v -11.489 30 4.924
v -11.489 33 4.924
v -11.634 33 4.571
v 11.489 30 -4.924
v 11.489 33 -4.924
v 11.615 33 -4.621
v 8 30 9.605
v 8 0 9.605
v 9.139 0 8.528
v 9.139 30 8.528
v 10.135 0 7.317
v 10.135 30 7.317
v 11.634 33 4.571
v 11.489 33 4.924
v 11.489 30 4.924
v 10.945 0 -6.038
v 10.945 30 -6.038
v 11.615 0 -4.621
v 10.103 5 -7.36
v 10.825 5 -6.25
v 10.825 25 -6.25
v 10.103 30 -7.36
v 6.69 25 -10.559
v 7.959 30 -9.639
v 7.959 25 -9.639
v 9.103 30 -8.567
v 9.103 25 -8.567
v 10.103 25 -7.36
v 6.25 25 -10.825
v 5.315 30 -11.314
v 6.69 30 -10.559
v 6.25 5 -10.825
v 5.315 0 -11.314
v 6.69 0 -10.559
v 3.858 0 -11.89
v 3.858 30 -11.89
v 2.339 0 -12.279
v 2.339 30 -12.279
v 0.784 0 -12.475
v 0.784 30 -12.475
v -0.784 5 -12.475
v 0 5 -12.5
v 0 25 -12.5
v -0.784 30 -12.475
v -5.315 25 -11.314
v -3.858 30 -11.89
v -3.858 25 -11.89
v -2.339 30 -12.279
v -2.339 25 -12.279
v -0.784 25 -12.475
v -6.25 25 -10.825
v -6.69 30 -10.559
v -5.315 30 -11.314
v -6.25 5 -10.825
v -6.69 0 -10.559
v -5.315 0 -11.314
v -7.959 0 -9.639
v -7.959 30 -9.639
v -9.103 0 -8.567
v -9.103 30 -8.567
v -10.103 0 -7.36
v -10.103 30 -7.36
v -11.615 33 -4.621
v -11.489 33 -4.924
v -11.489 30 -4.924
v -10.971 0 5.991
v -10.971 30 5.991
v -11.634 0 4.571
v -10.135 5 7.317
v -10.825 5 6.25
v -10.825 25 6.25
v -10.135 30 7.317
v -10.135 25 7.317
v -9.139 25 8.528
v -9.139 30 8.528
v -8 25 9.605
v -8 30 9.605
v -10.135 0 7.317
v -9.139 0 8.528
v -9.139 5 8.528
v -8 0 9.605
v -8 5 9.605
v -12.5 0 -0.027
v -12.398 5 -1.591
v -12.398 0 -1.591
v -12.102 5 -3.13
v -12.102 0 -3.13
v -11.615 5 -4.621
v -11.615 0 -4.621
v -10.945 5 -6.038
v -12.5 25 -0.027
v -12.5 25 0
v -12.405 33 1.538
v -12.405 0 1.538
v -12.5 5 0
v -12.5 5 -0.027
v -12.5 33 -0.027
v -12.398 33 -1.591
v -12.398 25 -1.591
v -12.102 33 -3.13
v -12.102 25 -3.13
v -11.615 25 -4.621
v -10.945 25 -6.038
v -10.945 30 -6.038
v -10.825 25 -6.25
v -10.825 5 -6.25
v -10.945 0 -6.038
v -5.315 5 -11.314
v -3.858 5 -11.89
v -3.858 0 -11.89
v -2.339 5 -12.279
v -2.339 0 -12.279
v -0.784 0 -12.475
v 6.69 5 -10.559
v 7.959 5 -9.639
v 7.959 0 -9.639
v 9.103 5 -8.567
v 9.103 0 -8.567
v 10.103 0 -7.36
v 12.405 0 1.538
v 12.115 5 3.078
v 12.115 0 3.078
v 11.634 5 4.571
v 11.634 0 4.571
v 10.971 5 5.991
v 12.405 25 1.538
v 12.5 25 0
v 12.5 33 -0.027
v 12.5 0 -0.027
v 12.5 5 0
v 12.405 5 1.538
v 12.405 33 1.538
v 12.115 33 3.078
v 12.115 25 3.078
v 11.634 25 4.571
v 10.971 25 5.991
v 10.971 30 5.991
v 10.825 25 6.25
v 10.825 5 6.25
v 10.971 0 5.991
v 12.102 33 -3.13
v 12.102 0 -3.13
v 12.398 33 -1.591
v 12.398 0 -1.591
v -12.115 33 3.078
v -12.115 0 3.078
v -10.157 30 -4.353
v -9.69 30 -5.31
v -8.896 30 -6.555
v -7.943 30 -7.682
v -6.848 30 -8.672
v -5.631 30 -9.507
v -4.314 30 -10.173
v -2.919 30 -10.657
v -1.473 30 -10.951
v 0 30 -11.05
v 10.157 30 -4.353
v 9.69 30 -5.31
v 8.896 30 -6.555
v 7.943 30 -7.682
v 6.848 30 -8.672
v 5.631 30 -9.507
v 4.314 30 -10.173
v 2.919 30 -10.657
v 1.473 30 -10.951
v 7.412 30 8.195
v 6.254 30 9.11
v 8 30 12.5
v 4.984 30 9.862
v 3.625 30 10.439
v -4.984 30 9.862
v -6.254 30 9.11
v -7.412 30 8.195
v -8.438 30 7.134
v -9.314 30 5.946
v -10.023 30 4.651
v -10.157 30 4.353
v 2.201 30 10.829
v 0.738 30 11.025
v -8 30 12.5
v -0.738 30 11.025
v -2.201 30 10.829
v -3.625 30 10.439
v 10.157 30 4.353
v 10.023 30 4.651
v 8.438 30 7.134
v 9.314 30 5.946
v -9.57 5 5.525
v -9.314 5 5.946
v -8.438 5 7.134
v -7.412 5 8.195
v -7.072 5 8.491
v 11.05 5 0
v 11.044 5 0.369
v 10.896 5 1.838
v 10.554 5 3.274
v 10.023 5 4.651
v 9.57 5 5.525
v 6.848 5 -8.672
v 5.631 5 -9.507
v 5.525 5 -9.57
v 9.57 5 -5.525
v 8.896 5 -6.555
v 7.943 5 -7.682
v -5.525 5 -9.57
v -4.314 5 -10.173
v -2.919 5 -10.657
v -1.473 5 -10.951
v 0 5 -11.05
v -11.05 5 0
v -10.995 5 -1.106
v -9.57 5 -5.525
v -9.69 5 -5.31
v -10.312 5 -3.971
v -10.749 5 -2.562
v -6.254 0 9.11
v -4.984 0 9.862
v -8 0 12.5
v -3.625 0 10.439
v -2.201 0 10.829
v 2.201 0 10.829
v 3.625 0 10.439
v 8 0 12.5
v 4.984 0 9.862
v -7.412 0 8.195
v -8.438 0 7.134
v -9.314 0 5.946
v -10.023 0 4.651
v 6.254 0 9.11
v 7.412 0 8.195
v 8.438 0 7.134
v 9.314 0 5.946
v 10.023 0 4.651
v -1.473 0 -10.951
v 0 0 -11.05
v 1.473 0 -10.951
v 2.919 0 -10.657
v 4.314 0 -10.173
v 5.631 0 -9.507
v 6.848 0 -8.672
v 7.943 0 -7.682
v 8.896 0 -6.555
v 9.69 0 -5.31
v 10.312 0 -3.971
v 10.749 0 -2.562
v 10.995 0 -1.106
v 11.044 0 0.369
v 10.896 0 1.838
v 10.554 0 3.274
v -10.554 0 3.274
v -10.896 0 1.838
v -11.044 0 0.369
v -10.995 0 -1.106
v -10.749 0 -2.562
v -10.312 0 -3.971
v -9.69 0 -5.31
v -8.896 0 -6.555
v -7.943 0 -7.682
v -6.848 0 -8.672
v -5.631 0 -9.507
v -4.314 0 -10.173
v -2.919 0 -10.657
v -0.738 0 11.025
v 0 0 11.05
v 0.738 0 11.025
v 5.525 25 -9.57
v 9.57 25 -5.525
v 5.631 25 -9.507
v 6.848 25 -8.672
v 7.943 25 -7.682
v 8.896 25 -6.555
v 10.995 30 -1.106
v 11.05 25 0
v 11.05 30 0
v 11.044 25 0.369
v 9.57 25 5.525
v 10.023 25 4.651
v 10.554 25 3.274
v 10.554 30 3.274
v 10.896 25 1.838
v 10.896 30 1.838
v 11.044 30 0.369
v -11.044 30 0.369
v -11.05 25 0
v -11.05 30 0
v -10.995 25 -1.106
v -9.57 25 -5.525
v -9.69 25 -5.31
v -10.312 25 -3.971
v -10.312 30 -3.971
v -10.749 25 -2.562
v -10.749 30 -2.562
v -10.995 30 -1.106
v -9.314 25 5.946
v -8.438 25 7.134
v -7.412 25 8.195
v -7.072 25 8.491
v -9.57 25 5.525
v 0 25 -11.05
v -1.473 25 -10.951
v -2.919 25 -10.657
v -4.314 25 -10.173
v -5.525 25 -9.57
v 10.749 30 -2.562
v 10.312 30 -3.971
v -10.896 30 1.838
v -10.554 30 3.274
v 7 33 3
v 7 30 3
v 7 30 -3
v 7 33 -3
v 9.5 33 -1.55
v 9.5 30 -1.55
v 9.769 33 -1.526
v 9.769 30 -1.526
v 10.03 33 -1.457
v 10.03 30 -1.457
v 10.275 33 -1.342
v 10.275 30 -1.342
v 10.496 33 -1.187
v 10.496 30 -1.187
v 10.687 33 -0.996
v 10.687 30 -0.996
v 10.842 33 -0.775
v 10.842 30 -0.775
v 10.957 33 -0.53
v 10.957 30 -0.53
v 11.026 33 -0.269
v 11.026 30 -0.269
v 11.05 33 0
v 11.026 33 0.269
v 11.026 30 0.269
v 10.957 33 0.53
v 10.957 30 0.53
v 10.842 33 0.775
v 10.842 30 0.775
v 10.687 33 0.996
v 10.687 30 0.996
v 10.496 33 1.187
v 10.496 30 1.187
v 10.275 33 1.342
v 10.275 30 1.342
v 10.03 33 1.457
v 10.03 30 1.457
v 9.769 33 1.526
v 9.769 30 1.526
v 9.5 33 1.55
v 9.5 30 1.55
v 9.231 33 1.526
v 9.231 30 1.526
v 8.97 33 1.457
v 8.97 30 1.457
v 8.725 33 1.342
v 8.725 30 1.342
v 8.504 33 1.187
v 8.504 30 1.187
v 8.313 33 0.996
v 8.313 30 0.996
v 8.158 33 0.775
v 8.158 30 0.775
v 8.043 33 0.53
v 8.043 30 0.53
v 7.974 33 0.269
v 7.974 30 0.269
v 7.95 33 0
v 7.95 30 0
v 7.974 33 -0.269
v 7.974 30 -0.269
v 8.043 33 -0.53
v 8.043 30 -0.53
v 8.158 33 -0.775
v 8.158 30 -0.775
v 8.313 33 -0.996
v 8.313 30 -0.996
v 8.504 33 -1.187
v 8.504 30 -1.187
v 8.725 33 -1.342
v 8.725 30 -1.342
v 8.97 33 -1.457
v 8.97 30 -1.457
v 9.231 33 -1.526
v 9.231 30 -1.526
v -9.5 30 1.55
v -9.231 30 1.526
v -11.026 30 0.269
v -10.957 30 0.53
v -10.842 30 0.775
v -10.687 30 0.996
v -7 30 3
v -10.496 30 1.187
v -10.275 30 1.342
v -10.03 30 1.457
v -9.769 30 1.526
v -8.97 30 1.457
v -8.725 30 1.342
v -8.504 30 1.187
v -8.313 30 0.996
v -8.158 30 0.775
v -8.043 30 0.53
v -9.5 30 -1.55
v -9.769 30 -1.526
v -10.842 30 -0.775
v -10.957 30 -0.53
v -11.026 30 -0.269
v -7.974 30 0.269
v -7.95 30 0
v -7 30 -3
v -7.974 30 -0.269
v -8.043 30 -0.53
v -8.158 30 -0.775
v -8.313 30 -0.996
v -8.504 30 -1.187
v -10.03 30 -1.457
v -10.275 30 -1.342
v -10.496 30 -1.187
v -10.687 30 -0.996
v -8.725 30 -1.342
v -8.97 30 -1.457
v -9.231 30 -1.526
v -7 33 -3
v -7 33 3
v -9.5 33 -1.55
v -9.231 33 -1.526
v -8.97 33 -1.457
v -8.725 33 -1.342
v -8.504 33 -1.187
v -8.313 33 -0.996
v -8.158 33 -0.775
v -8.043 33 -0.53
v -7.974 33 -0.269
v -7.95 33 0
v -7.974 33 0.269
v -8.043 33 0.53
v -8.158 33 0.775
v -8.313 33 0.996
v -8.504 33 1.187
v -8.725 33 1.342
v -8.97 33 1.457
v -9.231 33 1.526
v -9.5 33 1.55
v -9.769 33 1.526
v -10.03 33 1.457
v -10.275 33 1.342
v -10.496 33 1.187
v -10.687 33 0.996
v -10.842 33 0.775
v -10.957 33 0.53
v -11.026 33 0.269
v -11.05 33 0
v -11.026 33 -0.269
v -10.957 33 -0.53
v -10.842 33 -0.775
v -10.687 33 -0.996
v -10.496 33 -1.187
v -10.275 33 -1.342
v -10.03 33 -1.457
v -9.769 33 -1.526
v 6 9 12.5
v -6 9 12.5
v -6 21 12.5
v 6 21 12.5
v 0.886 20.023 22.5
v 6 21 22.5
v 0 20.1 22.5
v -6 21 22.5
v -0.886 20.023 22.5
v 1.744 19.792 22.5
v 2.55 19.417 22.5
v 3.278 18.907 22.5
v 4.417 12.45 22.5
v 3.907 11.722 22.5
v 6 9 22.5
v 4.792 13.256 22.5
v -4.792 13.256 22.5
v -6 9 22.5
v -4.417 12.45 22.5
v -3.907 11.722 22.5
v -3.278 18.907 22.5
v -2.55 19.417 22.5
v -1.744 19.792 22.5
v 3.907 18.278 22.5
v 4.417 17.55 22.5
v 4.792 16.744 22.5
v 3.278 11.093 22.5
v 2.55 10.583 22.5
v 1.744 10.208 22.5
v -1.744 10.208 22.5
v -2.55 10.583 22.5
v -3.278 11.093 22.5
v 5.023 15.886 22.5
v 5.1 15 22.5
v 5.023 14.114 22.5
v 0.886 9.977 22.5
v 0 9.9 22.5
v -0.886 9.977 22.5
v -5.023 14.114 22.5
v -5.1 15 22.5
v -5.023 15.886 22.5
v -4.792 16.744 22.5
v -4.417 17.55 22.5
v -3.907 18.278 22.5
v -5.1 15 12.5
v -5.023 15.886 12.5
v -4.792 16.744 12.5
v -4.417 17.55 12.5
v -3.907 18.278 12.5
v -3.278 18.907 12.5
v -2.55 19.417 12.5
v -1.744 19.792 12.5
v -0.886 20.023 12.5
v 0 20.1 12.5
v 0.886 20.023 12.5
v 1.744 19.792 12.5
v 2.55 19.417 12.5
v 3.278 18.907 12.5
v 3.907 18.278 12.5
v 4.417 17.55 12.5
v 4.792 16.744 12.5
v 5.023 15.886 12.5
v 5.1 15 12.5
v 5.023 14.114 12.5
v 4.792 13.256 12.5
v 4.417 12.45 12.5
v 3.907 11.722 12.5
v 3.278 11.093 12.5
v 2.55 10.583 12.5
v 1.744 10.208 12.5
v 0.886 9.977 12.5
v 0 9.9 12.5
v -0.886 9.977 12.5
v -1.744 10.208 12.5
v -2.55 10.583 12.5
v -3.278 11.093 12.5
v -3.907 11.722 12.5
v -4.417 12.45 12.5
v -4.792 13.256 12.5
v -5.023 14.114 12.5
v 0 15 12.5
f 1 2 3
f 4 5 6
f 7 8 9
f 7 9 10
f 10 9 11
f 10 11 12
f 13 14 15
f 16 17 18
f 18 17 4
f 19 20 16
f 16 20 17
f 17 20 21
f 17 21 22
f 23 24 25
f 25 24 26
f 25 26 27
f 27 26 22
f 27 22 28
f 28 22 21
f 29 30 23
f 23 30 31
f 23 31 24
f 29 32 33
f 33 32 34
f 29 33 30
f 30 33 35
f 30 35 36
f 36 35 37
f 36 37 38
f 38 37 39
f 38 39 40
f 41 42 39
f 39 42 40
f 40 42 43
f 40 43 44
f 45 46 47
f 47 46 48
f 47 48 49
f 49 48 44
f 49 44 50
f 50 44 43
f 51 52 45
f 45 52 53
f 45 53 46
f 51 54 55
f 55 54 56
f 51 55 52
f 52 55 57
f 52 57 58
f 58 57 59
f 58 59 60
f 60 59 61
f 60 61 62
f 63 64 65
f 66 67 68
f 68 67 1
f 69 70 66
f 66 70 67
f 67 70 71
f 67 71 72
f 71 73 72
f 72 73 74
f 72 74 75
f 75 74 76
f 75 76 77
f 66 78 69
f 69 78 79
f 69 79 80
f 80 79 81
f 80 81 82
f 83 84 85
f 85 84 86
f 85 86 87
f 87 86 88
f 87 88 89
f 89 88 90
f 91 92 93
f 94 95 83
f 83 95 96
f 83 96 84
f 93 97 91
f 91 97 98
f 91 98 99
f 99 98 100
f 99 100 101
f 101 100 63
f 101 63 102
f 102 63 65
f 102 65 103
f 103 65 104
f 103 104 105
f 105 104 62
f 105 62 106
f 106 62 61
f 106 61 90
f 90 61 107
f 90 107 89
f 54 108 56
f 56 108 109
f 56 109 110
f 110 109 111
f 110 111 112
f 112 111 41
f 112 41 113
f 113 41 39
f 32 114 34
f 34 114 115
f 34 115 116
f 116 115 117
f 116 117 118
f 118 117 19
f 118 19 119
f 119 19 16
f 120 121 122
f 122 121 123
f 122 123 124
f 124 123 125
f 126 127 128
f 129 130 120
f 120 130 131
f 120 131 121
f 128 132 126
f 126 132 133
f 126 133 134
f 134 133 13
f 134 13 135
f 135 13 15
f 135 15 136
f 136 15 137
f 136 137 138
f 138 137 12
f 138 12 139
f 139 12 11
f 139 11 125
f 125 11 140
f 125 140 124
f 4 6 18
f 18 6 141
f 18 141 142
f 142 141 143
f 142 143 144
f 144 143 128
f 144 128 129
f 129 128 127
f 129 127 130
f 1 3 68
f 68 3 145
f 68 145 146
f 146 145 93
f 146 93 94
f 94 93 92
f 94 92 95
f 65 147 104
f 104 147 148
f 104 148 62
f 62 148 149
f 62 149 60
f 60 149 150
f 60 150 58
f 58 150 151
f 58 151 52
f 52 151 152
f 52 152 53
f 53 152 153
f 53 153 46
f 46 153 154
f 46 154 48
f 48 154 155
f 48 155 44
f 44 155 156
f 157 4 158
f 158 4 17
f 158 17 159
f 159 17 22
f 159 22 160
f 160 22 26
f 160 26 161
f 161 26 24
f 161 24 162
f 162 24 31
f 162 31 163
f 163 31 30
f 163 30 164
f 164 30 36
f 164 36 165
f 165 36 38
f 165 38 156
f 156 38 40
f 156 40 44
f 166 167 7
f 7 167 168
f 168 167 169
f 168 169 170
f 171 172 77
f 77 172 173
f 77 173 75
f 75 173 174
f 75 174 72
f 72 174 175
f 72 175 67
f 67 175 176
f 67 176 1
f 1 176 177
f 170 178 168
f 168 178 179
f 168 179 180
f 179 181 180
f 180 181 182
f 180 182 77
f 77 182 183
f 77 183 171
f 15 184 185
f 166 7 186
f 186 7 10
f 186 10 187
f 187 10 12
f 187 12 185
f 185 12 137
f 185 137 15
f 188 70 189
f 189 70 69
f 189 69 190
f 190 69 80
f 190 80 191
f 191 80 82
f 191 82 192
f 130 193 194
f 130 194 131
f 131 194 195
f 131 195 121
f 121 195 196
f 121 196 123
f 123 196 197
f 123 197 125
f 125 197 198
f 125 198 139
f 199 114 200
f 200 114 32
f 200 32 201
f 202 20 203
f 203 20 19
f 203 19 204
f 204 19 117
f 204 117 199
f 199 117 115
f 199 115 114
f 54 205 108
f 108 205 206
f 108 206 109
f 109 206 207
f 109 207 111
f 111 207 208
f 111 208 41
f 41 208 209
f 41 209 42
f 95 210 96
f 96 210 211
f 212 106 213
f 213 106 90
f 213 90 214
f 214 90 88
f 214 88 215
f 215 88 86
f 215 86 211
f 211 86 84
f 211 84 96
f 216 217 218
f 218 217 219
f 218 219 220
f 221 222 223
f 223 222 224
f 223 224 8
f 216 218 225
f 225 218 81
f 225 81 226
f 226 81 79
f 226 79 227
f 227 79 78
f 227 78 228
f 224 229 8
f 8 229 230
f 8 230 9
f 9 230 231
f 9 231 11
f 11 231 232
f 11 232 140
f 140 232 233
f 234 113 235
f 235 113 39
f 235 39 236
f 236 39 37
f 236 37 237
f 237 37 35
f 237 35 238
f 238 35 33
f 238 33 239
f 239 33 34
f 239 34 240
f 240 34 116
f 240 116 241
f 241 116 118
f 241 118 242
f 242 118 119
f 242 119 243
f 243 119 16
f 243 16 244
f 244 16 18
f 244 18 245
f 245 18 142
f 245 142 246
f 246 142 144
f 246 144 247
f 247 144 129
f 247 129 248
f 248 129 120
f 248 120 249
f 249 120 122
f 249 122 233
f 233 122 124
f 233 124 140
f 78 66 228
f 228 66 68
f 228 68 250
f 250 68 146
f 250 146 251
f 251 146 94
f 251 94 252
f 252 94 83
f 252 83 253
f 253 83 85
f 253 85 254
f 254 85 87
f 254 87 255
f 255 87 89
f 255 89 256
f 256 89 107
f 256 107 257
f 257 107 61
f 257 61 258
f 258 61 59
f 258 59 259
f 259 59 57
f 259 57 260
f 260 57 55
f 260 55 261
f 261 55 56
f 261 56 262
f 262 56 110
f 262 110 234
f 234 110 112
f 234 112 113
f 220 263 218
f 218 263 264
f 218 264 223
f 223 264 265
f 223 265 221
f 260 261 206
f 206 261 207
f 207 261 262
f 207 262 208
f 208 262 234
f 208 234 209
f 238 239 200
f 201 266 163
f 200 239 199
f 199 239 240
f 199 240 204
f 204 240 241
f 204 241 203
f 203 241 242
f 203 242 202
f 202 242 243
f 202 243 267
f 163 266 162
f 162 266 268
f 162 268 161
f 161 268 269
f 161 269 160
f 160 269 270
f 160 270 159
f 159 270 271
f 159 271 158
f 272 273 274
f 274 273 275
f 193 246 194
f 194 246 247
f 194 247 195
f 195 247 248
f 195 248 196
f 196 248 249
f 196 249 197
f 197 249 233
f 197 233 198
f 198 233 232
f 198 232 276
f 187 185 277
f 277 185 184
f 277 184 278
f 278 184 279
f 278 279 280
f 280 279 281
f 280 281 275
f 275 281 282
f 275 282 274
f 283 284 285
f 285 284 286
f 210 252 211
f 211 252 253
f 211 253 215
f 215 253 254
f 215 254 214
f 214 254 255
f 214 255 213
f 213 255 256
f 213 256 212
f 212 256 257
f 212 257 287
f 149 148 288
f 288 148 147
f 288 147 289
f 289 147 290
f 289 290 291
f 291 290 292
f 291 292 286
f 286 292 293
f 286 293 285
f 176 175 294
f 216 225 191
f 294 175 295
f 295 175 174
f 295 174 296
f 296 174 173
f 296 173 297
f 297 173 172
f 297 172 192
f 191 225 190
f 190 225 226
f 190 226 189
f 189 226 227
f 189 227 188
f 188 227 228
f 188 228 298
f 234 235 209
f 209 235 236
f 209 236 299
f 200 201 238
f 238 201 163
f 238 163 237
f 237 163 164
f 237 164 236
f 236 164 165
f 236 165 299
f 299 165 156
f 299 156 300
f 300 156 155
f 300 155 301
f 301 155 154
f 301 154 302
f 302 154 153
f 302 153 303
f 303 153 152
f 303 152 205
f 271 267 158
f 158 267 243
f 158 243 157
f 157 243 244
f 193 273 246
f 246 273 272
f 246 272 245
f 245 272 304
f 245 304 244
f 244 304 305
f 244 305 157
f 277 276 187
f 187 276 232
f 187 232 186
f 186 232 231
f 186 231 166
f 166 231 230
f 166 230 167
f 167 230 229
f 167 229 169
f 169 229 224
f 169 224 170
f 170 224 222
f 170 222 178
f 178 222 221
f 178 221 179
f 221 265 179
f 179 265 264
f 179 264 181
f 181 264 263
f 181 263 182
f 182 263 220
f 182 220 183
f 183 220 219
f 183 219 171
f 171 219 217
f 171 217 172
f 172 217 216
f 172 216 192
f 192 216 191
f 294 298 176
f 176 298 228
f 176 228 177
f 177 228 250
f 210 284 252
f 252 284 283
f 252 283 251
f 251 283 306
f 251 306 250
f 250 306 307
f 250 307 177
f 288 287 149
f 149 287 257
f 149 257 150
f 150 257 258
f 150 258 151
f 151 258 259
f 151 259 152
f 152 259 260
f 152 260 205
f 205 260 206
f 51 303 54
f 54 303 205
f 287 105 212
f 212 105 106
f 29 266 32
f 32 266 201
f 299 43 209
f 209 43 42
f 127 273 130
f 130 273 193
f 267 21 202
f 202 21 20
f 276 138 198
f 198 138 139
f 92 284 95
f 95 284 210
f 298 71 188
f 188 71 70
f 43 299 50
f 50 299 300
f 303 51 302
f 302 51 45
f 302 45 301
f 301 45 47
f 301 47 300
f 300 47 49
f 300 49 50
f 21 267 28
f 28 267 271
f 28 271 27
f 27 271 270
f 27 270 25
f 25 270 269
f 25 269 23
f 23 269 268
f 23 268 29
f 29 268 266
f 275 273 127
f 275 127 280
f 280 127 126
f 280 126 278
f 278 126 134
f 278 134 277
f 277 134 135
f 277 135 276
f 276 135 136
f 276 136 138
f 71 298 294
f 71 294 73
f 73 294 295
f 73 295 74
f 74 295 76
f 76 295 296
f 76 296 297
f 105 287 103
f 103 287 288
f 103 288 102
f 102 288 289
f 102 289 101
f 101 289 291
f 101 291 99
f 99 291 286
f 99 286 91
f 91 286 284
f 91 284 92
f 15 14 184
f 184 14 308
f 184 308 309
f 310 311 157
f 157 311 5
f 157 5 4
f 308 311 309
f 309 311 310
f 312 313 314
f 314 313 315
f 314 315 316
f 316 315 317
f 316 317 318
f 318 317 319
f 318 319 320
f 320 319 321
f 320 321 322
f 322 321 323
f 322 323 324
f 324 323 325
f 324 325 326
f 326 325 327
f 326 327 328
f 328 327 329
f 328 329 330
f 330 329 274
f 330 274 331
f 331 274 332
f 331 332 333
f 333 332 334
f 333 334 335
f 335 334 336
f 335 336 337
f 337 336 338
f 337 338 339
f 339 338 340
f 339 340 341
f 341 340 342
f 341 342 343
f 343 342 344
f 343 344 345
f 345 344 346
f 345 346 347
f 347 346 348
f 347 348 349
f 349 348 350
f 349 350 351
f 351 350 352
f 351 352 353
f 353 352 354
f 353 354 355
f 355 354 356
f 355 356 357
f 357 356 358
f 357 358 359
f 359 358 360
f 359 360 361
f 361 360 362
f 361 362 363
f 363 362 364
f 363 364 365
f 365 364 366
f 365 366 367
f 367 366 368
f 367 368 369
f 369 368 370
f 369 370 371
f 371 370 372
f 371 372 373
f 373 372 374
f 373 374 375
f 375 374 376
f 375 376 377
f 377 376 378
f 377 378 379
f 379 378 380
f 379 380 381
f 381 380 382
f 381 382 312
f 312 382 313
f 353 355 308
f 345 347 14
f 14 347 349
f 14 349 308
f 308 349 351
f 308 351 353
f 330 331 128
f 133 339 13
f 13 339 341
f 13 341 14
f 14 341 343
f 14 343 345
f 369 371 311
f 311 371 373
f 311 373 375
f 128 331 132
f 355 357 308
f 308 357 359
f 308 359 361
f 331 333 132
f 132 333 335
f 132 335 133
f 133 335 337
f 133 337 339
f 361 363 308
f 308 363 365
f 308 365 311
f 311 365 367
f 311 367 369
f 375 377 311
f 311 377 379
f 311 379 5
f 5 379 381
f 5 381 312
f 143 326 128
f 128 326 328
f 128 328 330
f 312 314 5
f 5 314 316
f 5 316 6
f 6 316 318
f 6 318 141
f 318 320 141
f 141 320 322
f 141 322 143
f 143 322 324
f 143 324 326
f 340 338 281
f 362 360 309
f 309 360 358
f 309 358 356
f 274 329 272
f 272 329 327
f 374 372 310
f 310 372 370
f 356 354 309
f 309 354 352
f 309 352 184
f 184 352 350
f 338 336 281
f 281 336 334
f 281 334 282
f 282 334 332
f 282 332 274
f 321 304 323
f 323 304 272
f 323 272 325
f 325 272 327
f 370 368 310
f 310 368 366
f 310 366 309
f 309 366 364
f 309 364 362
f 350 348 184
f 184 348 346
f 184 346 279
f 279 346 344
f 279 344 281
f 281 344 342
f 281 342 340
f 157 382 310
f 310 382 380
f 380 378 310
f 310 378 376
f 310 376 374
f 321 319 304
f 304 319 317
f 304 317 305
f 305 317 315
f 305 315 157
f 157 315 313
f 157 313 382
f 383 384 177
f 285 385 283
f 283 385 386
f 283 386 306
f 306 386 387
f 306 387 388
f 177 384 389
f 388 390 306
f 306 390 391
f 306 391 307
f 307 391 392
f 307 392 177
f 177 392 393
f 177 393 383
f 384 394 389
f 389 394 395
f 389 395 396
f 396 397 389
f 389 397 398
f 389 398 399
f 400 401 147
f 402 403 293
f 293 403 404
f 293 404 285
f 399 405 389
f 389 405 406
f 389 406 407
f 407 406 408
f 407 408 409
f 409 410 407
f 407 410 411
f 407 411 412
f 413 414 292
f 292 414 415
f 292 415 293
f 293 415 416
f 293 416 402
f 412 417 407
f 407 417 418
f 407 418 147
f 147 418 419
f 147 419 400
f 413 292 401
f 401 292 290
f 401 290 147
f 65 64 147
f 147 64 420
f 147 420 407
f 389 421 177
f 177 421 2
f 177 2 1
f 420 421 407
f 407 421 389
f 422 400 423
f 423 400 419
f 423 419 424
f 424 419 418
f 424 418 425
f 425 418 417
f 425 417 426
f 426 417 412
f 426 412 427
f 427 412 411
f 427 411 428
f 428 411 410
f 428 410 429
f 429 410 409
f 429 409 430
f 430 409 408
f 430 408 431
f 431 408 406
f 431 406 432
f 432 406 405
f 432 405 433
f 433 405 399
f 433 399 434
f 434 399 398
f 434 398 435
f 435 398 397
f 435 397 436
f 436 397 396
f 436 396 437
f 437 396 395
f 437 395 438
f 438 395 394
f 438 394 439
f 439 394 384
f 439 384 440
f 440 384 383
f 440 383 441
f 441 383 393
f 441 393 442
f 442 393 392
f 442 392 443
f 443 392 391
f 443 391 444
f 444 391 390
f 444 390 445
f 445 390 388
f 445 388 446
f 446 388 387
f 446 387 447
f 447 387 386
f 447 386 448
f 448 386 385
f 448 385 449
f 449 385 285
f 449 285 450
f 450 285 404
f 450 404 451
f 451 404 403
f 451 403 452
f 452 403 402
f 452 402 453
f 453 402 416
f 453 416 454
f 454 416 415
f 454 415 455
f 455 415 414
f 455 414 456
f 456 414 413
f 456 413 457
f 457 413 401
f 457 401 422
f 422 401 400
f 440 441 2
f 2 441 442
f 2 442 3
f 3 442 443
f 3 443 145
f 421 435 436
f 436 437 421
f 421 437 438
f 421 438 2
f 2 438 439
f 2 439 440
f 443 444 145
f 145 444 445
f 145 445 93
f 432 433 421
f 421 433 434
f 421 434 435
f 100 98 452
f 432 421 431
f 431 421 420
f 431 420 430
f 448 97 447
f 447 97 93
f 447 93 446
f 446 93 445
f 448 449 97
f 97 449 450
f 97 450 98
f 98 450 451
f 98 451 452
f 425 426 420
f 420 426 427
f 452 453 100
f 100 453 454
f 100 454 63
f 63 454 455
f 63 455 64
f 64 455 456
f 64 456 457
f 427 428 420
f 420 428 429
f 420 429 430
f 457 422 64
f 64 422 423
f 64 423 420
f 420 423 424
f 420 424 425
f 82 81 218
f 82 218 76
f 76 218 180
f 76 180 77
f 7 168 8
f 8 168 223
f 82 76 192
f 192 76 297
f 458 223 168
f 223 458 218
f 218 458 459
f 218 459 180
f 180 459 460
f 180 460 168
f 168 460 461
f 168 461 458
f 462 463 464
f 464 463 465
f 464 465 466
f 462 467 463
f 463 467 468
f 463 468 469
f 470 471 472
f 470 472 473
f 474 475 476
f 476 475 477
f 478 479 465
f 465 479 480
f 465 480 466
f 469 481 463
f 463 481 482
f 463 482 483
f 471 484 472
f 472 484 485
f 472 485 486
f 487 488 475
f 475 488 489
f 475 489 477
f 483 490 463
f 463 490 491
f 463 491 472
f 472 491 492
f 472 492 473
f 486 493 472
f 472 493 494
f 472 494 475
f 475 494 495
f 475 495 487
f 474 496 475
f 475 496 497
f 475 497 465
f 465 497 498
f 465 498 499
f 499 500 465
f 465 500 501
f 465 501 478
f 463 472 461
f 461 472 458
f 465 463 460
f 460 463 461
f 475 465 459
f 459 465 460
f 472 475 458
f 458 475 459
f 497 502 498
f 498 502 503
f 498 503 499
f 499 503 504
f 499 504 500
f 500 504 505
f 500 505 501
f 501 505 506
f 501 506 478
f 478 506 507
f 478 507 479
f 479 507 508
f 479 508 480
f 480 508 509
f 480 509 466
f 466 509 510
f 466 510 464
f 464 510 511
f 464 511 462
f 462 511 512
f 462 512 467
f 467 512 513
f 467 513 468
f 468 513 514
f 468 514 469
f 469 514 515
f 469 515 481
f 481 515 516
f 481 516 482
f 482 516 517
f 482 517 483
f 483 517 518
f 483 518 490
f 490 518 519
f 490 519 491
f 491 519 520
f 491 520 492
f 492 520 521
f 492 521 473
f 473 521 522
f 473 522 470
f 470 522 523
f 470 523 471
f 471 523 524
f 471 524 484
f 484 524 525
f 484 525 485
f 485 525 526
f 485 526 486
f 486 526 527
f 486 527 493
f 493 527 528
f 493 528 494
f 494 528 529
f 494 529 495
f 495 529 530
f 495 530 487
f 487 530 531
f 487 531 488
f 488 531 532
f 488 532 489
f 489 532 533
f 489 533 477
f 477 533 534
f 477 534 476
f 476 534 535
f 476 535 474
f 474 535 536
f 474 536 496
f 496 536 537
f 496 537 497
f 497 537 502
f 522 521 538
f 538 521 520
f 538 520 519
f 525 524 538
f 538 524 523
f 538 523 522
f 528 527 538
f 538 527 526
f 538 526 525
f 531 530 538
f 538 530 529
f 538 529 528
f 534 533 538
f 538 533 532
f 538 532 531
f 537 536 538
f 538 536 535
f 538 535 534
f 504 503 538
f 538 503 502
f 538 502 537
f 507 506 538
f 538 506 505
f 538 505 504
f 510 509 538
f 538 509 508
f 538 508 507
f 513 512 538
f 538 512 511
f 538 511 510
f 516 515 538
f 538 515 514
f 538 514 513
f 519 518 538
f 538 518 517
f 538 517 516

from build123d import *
from build123d.topology import SkipClean

# Parameters (mm, degrees)
SKETCH_1_R      = 12.5
SKETCH_1_R_2    = 11.05
EXTRUDE_1_DEPTH = 5
EXTRUDE_2_DEPTH = 20
SKETCH_3_R      = 12.5
SKETCH_3_R_2    = 11.05
EXTRUDE_3_DEPTH = 5
SKETCH_4_R      = 1.55
EXTRUDE_5_DEPTH = 3
EXTRUDE_START   = -30
EXTRUDE_7_DEPTH = 30
SKETCH_7_W      = 12
SKETCH_7_H      = 12
SKETCH_7_R      = 5.1
EXTRUDE_8_DEPTH = 10


with BuildPart() as part:
    # 草图1 → 凸台-拉伸1 (new body)
    with BuildSketch(Plane(origin=(0, 0, 0), x_dir=(1, 0, 0), z_dir=(0, 1, 0))):
        with Locations(Location((0, 0, 0), (0, 0, 270))):
            Circle(SKETCH_1_R)
        with Locations(Location((0, 0, 0), (0, 0, 270))):
            Circle(SKETCH_1_R_2, mode=Mode.SUBTRACT)
    extrude(amount=EXTRUDE_1_DEPTH)

    # 草图2 → 凸台-拉伸2 (add)
    with SkipClean():  # the faces are left unmerged after this step: merging them gives an invalid solid
        with BuildSketch(Plane(origin=(0, 5, 0), x_dir=(1, 0, 0), z_dir=(0, 1, 0))):
            with BuildLine():
                Line((-10.825318, 6.25), (-9.569581, 5.525))
                ThreePointArc((-9.569581, 5.525), (-7.81353, 7.81353), (-5.525, 9.569581))
                Line((-5.525, 9.569581), (-6.25, 10.825318))
                ThreePointArc((-6.25, 10.825318), (-8.838835, 8.838835), (-10.825318, 6.25))
            make_face()
            with BuildLine():
                Line((0, 12.5), (0, 11.05))
                ThreePointArc((0, 11.05), (2.85995, 10.67348), (5.525, 9.569581))
                Line((5.525, 9.569581), (6.25, 10.825318))
                ThreePointArc((6.25, 10.825318), (3.235238, 12.074073), (0, 12.5))
            make_face()
            with BuildLine():
                Line((10.825318, 6.25), (9.569581, 5.525))
                ThreePointArc((9.569581, 5.525), (10.67348, 2.85995), (11.05, 0))
                Line((11.05, 0), (12.5, 0))
                ThreePointArc((12.5, 0), (12.074073, 3.235238), (10.825318, 6.25))
            make_face()
            with BuildLine():
                Line((10.825318, -6.25), (9.569581, -5.525))
                ThreePointArc((9.569581, -5.525), (7.81353, -7.81353), (5.525, -9.569581))
                Line((5.525, -9.569581), (6.25, -10.825318))
                ThreePointArc((6.25, -10.825318), (8.838835, -8.838835), (10.825318, -6.25))
            make_face()
            with BuildLine():
                Line((0, -12.5), (0, -11.05))
                ThreePointArc((0, -11.05), (-2.85995, -10.67348), (-5.525, -9.569581))
                Line((-5.525, -9.569581), (-6.25, -10.825318))
                ThreePointArc((-6.25, -10.825318), (-3.235238, -12.074073), (0, -12.5))
            make_face()
            with BuildLine():
                Line((-10.825318, -6.25), (-9.569581, -5.525))
                ThreePointArc((-9.569581, -5.525), (-10.67348, -2.85995), (-11.05, 0))
                Line((-11.05, 0), (-12.5, 0))
                ThreePointArc((-12.5, 0), (-12.074073, -3.235238), (-10.825318, -6.25))
            make_face()
        extrude(amount=EXTRUDE_2_DEPTH)

    # 草图3 → 凸台-拉伸3 (add)
    with SkipClean():  # the faces are left unmerged after this step: merging them gives an invalid solid
        with BuildSketch(Plane(origin=(0, 25, 0), x_dir=(1, 0, 0), z_dir=(0, 1, 0))):
            with Locations(Location((0, 0, 0), (0, 0, 270))):
                Circle(SKETCH_3_R)
            with Locations(Location((0, 0, 0), (0, 0, 270))):
                Circle(SKETCH_3_R_2, mode=Mode.SUBTRACT)
        extrude(amount=EXTRUDE_3_DEPTH)

    # 草图4 → 凸台-拉伸5 (add)
    # profile 1 of 2: a face of its own
    with SkipClean():  # the faces are left unmerged after this step: merging them gives an invalid solid
        with BuildSketch(Plane(origin=(0, 30, 0), x_dir=(1, 0, 0), z_dir=(0, 1, 0))):
            with BuildLine():
                Line((-7, -3), (-7, 3))
                Line((-7, 3), (-11.489313, 4.923991))
                ThreePointArc((-11.489313, 4.923991), (-12.5, 0), (-11.489313, -4.923991))
                Line((-11.489313, -4.923991), (-7, -3))
            make_face()
            with Locations(Location((-9.5, 0, 0), (0, 0, 179.999298))):
                Circle(SKETCH_4_R, mode=Mode.SUBTRACT)
        # profile 2 of 2: a face of its own
        with BuildSketch(Plane(origin=(0, 30, 0), x_dir=(1, 0, 0), z_dir=(0, 1, 0))):
            with BuildLine():
                Line((7, -3), (11.489313, -4.923991))
                ThreePointArc((11.489313, -4.923991), (12.5, 0), (11.489313, 4.923991))
                Line((11.489313, 4.923991), (7, 3))
                Line((7, 3), (7, -3))
            make_face()
            with Locations((9.5, 0)):
                Circle(SKETCH_4_R, mode=Mode.SUBTRACT)
        extrude(amount=EXTRUDE_5_DEPTH)

    # 凸台-拉伸7: read off the stored shape, not the designer's step
    # 凸台-拉伸7 outline → 凸台-拉伸7 (add)
    with BuildSketch(Plane(origin=(0, 30, 0), x_dir=(1, 0, 0), z_dir=(0, 1, 0)).offset(EXTRUDE_START)):
        with BuildLine():
            ThreePointArc((-5.525, -9.569581), (-6.321565, -9.06313), (-7.072, -8.490543))
            Line((-7.072, -8.490543), (-8, -9.604686))
            Line((-8, -9.604686), (-8, -12.5))
            Line((-8, -12.5), (0, -12.5))
            ThreePointArc((0, -12.5), (-3.235238, -12.074073), (-6.25, -10.825318))
            Line((-6.25, -10.825318), (-5.525, -9.569581))
        make_face()
        with BuildLine():
            ThreePointArc((5.525, -9.569581), (2.85995, -10.67348), (0, -11.05))
            Line((0, -11.05), (0, -12.5))
            Line((0, -12.5), (8, -12.5))
            Line((8, -12.5), (8, -9.604686))
            ThreePointArc((8, -9.604686), (7.151092, -10.252409), (6.25, -10.825318))
            Line((6.25, -10.825318), (5.525, -9.569581))
        make_face()
    extrude(amount=EXTRUDE_7_DEPTH)

    # 草图7 → 凸台-拉伸8 (add)
    with BuildSketch(Plane.XY.offset(12.5)):
        with Locations((0, 15)):
            Rectangle(SKETCH_7_W, SKETCH_7_H)
        with Locations((0, 15)):
            Circle(SKETCH_7_R, mode=Mode.SUBTRACT)
    extrude(amount=EXTRUDE_8_DEPTH)


solid = part.part
